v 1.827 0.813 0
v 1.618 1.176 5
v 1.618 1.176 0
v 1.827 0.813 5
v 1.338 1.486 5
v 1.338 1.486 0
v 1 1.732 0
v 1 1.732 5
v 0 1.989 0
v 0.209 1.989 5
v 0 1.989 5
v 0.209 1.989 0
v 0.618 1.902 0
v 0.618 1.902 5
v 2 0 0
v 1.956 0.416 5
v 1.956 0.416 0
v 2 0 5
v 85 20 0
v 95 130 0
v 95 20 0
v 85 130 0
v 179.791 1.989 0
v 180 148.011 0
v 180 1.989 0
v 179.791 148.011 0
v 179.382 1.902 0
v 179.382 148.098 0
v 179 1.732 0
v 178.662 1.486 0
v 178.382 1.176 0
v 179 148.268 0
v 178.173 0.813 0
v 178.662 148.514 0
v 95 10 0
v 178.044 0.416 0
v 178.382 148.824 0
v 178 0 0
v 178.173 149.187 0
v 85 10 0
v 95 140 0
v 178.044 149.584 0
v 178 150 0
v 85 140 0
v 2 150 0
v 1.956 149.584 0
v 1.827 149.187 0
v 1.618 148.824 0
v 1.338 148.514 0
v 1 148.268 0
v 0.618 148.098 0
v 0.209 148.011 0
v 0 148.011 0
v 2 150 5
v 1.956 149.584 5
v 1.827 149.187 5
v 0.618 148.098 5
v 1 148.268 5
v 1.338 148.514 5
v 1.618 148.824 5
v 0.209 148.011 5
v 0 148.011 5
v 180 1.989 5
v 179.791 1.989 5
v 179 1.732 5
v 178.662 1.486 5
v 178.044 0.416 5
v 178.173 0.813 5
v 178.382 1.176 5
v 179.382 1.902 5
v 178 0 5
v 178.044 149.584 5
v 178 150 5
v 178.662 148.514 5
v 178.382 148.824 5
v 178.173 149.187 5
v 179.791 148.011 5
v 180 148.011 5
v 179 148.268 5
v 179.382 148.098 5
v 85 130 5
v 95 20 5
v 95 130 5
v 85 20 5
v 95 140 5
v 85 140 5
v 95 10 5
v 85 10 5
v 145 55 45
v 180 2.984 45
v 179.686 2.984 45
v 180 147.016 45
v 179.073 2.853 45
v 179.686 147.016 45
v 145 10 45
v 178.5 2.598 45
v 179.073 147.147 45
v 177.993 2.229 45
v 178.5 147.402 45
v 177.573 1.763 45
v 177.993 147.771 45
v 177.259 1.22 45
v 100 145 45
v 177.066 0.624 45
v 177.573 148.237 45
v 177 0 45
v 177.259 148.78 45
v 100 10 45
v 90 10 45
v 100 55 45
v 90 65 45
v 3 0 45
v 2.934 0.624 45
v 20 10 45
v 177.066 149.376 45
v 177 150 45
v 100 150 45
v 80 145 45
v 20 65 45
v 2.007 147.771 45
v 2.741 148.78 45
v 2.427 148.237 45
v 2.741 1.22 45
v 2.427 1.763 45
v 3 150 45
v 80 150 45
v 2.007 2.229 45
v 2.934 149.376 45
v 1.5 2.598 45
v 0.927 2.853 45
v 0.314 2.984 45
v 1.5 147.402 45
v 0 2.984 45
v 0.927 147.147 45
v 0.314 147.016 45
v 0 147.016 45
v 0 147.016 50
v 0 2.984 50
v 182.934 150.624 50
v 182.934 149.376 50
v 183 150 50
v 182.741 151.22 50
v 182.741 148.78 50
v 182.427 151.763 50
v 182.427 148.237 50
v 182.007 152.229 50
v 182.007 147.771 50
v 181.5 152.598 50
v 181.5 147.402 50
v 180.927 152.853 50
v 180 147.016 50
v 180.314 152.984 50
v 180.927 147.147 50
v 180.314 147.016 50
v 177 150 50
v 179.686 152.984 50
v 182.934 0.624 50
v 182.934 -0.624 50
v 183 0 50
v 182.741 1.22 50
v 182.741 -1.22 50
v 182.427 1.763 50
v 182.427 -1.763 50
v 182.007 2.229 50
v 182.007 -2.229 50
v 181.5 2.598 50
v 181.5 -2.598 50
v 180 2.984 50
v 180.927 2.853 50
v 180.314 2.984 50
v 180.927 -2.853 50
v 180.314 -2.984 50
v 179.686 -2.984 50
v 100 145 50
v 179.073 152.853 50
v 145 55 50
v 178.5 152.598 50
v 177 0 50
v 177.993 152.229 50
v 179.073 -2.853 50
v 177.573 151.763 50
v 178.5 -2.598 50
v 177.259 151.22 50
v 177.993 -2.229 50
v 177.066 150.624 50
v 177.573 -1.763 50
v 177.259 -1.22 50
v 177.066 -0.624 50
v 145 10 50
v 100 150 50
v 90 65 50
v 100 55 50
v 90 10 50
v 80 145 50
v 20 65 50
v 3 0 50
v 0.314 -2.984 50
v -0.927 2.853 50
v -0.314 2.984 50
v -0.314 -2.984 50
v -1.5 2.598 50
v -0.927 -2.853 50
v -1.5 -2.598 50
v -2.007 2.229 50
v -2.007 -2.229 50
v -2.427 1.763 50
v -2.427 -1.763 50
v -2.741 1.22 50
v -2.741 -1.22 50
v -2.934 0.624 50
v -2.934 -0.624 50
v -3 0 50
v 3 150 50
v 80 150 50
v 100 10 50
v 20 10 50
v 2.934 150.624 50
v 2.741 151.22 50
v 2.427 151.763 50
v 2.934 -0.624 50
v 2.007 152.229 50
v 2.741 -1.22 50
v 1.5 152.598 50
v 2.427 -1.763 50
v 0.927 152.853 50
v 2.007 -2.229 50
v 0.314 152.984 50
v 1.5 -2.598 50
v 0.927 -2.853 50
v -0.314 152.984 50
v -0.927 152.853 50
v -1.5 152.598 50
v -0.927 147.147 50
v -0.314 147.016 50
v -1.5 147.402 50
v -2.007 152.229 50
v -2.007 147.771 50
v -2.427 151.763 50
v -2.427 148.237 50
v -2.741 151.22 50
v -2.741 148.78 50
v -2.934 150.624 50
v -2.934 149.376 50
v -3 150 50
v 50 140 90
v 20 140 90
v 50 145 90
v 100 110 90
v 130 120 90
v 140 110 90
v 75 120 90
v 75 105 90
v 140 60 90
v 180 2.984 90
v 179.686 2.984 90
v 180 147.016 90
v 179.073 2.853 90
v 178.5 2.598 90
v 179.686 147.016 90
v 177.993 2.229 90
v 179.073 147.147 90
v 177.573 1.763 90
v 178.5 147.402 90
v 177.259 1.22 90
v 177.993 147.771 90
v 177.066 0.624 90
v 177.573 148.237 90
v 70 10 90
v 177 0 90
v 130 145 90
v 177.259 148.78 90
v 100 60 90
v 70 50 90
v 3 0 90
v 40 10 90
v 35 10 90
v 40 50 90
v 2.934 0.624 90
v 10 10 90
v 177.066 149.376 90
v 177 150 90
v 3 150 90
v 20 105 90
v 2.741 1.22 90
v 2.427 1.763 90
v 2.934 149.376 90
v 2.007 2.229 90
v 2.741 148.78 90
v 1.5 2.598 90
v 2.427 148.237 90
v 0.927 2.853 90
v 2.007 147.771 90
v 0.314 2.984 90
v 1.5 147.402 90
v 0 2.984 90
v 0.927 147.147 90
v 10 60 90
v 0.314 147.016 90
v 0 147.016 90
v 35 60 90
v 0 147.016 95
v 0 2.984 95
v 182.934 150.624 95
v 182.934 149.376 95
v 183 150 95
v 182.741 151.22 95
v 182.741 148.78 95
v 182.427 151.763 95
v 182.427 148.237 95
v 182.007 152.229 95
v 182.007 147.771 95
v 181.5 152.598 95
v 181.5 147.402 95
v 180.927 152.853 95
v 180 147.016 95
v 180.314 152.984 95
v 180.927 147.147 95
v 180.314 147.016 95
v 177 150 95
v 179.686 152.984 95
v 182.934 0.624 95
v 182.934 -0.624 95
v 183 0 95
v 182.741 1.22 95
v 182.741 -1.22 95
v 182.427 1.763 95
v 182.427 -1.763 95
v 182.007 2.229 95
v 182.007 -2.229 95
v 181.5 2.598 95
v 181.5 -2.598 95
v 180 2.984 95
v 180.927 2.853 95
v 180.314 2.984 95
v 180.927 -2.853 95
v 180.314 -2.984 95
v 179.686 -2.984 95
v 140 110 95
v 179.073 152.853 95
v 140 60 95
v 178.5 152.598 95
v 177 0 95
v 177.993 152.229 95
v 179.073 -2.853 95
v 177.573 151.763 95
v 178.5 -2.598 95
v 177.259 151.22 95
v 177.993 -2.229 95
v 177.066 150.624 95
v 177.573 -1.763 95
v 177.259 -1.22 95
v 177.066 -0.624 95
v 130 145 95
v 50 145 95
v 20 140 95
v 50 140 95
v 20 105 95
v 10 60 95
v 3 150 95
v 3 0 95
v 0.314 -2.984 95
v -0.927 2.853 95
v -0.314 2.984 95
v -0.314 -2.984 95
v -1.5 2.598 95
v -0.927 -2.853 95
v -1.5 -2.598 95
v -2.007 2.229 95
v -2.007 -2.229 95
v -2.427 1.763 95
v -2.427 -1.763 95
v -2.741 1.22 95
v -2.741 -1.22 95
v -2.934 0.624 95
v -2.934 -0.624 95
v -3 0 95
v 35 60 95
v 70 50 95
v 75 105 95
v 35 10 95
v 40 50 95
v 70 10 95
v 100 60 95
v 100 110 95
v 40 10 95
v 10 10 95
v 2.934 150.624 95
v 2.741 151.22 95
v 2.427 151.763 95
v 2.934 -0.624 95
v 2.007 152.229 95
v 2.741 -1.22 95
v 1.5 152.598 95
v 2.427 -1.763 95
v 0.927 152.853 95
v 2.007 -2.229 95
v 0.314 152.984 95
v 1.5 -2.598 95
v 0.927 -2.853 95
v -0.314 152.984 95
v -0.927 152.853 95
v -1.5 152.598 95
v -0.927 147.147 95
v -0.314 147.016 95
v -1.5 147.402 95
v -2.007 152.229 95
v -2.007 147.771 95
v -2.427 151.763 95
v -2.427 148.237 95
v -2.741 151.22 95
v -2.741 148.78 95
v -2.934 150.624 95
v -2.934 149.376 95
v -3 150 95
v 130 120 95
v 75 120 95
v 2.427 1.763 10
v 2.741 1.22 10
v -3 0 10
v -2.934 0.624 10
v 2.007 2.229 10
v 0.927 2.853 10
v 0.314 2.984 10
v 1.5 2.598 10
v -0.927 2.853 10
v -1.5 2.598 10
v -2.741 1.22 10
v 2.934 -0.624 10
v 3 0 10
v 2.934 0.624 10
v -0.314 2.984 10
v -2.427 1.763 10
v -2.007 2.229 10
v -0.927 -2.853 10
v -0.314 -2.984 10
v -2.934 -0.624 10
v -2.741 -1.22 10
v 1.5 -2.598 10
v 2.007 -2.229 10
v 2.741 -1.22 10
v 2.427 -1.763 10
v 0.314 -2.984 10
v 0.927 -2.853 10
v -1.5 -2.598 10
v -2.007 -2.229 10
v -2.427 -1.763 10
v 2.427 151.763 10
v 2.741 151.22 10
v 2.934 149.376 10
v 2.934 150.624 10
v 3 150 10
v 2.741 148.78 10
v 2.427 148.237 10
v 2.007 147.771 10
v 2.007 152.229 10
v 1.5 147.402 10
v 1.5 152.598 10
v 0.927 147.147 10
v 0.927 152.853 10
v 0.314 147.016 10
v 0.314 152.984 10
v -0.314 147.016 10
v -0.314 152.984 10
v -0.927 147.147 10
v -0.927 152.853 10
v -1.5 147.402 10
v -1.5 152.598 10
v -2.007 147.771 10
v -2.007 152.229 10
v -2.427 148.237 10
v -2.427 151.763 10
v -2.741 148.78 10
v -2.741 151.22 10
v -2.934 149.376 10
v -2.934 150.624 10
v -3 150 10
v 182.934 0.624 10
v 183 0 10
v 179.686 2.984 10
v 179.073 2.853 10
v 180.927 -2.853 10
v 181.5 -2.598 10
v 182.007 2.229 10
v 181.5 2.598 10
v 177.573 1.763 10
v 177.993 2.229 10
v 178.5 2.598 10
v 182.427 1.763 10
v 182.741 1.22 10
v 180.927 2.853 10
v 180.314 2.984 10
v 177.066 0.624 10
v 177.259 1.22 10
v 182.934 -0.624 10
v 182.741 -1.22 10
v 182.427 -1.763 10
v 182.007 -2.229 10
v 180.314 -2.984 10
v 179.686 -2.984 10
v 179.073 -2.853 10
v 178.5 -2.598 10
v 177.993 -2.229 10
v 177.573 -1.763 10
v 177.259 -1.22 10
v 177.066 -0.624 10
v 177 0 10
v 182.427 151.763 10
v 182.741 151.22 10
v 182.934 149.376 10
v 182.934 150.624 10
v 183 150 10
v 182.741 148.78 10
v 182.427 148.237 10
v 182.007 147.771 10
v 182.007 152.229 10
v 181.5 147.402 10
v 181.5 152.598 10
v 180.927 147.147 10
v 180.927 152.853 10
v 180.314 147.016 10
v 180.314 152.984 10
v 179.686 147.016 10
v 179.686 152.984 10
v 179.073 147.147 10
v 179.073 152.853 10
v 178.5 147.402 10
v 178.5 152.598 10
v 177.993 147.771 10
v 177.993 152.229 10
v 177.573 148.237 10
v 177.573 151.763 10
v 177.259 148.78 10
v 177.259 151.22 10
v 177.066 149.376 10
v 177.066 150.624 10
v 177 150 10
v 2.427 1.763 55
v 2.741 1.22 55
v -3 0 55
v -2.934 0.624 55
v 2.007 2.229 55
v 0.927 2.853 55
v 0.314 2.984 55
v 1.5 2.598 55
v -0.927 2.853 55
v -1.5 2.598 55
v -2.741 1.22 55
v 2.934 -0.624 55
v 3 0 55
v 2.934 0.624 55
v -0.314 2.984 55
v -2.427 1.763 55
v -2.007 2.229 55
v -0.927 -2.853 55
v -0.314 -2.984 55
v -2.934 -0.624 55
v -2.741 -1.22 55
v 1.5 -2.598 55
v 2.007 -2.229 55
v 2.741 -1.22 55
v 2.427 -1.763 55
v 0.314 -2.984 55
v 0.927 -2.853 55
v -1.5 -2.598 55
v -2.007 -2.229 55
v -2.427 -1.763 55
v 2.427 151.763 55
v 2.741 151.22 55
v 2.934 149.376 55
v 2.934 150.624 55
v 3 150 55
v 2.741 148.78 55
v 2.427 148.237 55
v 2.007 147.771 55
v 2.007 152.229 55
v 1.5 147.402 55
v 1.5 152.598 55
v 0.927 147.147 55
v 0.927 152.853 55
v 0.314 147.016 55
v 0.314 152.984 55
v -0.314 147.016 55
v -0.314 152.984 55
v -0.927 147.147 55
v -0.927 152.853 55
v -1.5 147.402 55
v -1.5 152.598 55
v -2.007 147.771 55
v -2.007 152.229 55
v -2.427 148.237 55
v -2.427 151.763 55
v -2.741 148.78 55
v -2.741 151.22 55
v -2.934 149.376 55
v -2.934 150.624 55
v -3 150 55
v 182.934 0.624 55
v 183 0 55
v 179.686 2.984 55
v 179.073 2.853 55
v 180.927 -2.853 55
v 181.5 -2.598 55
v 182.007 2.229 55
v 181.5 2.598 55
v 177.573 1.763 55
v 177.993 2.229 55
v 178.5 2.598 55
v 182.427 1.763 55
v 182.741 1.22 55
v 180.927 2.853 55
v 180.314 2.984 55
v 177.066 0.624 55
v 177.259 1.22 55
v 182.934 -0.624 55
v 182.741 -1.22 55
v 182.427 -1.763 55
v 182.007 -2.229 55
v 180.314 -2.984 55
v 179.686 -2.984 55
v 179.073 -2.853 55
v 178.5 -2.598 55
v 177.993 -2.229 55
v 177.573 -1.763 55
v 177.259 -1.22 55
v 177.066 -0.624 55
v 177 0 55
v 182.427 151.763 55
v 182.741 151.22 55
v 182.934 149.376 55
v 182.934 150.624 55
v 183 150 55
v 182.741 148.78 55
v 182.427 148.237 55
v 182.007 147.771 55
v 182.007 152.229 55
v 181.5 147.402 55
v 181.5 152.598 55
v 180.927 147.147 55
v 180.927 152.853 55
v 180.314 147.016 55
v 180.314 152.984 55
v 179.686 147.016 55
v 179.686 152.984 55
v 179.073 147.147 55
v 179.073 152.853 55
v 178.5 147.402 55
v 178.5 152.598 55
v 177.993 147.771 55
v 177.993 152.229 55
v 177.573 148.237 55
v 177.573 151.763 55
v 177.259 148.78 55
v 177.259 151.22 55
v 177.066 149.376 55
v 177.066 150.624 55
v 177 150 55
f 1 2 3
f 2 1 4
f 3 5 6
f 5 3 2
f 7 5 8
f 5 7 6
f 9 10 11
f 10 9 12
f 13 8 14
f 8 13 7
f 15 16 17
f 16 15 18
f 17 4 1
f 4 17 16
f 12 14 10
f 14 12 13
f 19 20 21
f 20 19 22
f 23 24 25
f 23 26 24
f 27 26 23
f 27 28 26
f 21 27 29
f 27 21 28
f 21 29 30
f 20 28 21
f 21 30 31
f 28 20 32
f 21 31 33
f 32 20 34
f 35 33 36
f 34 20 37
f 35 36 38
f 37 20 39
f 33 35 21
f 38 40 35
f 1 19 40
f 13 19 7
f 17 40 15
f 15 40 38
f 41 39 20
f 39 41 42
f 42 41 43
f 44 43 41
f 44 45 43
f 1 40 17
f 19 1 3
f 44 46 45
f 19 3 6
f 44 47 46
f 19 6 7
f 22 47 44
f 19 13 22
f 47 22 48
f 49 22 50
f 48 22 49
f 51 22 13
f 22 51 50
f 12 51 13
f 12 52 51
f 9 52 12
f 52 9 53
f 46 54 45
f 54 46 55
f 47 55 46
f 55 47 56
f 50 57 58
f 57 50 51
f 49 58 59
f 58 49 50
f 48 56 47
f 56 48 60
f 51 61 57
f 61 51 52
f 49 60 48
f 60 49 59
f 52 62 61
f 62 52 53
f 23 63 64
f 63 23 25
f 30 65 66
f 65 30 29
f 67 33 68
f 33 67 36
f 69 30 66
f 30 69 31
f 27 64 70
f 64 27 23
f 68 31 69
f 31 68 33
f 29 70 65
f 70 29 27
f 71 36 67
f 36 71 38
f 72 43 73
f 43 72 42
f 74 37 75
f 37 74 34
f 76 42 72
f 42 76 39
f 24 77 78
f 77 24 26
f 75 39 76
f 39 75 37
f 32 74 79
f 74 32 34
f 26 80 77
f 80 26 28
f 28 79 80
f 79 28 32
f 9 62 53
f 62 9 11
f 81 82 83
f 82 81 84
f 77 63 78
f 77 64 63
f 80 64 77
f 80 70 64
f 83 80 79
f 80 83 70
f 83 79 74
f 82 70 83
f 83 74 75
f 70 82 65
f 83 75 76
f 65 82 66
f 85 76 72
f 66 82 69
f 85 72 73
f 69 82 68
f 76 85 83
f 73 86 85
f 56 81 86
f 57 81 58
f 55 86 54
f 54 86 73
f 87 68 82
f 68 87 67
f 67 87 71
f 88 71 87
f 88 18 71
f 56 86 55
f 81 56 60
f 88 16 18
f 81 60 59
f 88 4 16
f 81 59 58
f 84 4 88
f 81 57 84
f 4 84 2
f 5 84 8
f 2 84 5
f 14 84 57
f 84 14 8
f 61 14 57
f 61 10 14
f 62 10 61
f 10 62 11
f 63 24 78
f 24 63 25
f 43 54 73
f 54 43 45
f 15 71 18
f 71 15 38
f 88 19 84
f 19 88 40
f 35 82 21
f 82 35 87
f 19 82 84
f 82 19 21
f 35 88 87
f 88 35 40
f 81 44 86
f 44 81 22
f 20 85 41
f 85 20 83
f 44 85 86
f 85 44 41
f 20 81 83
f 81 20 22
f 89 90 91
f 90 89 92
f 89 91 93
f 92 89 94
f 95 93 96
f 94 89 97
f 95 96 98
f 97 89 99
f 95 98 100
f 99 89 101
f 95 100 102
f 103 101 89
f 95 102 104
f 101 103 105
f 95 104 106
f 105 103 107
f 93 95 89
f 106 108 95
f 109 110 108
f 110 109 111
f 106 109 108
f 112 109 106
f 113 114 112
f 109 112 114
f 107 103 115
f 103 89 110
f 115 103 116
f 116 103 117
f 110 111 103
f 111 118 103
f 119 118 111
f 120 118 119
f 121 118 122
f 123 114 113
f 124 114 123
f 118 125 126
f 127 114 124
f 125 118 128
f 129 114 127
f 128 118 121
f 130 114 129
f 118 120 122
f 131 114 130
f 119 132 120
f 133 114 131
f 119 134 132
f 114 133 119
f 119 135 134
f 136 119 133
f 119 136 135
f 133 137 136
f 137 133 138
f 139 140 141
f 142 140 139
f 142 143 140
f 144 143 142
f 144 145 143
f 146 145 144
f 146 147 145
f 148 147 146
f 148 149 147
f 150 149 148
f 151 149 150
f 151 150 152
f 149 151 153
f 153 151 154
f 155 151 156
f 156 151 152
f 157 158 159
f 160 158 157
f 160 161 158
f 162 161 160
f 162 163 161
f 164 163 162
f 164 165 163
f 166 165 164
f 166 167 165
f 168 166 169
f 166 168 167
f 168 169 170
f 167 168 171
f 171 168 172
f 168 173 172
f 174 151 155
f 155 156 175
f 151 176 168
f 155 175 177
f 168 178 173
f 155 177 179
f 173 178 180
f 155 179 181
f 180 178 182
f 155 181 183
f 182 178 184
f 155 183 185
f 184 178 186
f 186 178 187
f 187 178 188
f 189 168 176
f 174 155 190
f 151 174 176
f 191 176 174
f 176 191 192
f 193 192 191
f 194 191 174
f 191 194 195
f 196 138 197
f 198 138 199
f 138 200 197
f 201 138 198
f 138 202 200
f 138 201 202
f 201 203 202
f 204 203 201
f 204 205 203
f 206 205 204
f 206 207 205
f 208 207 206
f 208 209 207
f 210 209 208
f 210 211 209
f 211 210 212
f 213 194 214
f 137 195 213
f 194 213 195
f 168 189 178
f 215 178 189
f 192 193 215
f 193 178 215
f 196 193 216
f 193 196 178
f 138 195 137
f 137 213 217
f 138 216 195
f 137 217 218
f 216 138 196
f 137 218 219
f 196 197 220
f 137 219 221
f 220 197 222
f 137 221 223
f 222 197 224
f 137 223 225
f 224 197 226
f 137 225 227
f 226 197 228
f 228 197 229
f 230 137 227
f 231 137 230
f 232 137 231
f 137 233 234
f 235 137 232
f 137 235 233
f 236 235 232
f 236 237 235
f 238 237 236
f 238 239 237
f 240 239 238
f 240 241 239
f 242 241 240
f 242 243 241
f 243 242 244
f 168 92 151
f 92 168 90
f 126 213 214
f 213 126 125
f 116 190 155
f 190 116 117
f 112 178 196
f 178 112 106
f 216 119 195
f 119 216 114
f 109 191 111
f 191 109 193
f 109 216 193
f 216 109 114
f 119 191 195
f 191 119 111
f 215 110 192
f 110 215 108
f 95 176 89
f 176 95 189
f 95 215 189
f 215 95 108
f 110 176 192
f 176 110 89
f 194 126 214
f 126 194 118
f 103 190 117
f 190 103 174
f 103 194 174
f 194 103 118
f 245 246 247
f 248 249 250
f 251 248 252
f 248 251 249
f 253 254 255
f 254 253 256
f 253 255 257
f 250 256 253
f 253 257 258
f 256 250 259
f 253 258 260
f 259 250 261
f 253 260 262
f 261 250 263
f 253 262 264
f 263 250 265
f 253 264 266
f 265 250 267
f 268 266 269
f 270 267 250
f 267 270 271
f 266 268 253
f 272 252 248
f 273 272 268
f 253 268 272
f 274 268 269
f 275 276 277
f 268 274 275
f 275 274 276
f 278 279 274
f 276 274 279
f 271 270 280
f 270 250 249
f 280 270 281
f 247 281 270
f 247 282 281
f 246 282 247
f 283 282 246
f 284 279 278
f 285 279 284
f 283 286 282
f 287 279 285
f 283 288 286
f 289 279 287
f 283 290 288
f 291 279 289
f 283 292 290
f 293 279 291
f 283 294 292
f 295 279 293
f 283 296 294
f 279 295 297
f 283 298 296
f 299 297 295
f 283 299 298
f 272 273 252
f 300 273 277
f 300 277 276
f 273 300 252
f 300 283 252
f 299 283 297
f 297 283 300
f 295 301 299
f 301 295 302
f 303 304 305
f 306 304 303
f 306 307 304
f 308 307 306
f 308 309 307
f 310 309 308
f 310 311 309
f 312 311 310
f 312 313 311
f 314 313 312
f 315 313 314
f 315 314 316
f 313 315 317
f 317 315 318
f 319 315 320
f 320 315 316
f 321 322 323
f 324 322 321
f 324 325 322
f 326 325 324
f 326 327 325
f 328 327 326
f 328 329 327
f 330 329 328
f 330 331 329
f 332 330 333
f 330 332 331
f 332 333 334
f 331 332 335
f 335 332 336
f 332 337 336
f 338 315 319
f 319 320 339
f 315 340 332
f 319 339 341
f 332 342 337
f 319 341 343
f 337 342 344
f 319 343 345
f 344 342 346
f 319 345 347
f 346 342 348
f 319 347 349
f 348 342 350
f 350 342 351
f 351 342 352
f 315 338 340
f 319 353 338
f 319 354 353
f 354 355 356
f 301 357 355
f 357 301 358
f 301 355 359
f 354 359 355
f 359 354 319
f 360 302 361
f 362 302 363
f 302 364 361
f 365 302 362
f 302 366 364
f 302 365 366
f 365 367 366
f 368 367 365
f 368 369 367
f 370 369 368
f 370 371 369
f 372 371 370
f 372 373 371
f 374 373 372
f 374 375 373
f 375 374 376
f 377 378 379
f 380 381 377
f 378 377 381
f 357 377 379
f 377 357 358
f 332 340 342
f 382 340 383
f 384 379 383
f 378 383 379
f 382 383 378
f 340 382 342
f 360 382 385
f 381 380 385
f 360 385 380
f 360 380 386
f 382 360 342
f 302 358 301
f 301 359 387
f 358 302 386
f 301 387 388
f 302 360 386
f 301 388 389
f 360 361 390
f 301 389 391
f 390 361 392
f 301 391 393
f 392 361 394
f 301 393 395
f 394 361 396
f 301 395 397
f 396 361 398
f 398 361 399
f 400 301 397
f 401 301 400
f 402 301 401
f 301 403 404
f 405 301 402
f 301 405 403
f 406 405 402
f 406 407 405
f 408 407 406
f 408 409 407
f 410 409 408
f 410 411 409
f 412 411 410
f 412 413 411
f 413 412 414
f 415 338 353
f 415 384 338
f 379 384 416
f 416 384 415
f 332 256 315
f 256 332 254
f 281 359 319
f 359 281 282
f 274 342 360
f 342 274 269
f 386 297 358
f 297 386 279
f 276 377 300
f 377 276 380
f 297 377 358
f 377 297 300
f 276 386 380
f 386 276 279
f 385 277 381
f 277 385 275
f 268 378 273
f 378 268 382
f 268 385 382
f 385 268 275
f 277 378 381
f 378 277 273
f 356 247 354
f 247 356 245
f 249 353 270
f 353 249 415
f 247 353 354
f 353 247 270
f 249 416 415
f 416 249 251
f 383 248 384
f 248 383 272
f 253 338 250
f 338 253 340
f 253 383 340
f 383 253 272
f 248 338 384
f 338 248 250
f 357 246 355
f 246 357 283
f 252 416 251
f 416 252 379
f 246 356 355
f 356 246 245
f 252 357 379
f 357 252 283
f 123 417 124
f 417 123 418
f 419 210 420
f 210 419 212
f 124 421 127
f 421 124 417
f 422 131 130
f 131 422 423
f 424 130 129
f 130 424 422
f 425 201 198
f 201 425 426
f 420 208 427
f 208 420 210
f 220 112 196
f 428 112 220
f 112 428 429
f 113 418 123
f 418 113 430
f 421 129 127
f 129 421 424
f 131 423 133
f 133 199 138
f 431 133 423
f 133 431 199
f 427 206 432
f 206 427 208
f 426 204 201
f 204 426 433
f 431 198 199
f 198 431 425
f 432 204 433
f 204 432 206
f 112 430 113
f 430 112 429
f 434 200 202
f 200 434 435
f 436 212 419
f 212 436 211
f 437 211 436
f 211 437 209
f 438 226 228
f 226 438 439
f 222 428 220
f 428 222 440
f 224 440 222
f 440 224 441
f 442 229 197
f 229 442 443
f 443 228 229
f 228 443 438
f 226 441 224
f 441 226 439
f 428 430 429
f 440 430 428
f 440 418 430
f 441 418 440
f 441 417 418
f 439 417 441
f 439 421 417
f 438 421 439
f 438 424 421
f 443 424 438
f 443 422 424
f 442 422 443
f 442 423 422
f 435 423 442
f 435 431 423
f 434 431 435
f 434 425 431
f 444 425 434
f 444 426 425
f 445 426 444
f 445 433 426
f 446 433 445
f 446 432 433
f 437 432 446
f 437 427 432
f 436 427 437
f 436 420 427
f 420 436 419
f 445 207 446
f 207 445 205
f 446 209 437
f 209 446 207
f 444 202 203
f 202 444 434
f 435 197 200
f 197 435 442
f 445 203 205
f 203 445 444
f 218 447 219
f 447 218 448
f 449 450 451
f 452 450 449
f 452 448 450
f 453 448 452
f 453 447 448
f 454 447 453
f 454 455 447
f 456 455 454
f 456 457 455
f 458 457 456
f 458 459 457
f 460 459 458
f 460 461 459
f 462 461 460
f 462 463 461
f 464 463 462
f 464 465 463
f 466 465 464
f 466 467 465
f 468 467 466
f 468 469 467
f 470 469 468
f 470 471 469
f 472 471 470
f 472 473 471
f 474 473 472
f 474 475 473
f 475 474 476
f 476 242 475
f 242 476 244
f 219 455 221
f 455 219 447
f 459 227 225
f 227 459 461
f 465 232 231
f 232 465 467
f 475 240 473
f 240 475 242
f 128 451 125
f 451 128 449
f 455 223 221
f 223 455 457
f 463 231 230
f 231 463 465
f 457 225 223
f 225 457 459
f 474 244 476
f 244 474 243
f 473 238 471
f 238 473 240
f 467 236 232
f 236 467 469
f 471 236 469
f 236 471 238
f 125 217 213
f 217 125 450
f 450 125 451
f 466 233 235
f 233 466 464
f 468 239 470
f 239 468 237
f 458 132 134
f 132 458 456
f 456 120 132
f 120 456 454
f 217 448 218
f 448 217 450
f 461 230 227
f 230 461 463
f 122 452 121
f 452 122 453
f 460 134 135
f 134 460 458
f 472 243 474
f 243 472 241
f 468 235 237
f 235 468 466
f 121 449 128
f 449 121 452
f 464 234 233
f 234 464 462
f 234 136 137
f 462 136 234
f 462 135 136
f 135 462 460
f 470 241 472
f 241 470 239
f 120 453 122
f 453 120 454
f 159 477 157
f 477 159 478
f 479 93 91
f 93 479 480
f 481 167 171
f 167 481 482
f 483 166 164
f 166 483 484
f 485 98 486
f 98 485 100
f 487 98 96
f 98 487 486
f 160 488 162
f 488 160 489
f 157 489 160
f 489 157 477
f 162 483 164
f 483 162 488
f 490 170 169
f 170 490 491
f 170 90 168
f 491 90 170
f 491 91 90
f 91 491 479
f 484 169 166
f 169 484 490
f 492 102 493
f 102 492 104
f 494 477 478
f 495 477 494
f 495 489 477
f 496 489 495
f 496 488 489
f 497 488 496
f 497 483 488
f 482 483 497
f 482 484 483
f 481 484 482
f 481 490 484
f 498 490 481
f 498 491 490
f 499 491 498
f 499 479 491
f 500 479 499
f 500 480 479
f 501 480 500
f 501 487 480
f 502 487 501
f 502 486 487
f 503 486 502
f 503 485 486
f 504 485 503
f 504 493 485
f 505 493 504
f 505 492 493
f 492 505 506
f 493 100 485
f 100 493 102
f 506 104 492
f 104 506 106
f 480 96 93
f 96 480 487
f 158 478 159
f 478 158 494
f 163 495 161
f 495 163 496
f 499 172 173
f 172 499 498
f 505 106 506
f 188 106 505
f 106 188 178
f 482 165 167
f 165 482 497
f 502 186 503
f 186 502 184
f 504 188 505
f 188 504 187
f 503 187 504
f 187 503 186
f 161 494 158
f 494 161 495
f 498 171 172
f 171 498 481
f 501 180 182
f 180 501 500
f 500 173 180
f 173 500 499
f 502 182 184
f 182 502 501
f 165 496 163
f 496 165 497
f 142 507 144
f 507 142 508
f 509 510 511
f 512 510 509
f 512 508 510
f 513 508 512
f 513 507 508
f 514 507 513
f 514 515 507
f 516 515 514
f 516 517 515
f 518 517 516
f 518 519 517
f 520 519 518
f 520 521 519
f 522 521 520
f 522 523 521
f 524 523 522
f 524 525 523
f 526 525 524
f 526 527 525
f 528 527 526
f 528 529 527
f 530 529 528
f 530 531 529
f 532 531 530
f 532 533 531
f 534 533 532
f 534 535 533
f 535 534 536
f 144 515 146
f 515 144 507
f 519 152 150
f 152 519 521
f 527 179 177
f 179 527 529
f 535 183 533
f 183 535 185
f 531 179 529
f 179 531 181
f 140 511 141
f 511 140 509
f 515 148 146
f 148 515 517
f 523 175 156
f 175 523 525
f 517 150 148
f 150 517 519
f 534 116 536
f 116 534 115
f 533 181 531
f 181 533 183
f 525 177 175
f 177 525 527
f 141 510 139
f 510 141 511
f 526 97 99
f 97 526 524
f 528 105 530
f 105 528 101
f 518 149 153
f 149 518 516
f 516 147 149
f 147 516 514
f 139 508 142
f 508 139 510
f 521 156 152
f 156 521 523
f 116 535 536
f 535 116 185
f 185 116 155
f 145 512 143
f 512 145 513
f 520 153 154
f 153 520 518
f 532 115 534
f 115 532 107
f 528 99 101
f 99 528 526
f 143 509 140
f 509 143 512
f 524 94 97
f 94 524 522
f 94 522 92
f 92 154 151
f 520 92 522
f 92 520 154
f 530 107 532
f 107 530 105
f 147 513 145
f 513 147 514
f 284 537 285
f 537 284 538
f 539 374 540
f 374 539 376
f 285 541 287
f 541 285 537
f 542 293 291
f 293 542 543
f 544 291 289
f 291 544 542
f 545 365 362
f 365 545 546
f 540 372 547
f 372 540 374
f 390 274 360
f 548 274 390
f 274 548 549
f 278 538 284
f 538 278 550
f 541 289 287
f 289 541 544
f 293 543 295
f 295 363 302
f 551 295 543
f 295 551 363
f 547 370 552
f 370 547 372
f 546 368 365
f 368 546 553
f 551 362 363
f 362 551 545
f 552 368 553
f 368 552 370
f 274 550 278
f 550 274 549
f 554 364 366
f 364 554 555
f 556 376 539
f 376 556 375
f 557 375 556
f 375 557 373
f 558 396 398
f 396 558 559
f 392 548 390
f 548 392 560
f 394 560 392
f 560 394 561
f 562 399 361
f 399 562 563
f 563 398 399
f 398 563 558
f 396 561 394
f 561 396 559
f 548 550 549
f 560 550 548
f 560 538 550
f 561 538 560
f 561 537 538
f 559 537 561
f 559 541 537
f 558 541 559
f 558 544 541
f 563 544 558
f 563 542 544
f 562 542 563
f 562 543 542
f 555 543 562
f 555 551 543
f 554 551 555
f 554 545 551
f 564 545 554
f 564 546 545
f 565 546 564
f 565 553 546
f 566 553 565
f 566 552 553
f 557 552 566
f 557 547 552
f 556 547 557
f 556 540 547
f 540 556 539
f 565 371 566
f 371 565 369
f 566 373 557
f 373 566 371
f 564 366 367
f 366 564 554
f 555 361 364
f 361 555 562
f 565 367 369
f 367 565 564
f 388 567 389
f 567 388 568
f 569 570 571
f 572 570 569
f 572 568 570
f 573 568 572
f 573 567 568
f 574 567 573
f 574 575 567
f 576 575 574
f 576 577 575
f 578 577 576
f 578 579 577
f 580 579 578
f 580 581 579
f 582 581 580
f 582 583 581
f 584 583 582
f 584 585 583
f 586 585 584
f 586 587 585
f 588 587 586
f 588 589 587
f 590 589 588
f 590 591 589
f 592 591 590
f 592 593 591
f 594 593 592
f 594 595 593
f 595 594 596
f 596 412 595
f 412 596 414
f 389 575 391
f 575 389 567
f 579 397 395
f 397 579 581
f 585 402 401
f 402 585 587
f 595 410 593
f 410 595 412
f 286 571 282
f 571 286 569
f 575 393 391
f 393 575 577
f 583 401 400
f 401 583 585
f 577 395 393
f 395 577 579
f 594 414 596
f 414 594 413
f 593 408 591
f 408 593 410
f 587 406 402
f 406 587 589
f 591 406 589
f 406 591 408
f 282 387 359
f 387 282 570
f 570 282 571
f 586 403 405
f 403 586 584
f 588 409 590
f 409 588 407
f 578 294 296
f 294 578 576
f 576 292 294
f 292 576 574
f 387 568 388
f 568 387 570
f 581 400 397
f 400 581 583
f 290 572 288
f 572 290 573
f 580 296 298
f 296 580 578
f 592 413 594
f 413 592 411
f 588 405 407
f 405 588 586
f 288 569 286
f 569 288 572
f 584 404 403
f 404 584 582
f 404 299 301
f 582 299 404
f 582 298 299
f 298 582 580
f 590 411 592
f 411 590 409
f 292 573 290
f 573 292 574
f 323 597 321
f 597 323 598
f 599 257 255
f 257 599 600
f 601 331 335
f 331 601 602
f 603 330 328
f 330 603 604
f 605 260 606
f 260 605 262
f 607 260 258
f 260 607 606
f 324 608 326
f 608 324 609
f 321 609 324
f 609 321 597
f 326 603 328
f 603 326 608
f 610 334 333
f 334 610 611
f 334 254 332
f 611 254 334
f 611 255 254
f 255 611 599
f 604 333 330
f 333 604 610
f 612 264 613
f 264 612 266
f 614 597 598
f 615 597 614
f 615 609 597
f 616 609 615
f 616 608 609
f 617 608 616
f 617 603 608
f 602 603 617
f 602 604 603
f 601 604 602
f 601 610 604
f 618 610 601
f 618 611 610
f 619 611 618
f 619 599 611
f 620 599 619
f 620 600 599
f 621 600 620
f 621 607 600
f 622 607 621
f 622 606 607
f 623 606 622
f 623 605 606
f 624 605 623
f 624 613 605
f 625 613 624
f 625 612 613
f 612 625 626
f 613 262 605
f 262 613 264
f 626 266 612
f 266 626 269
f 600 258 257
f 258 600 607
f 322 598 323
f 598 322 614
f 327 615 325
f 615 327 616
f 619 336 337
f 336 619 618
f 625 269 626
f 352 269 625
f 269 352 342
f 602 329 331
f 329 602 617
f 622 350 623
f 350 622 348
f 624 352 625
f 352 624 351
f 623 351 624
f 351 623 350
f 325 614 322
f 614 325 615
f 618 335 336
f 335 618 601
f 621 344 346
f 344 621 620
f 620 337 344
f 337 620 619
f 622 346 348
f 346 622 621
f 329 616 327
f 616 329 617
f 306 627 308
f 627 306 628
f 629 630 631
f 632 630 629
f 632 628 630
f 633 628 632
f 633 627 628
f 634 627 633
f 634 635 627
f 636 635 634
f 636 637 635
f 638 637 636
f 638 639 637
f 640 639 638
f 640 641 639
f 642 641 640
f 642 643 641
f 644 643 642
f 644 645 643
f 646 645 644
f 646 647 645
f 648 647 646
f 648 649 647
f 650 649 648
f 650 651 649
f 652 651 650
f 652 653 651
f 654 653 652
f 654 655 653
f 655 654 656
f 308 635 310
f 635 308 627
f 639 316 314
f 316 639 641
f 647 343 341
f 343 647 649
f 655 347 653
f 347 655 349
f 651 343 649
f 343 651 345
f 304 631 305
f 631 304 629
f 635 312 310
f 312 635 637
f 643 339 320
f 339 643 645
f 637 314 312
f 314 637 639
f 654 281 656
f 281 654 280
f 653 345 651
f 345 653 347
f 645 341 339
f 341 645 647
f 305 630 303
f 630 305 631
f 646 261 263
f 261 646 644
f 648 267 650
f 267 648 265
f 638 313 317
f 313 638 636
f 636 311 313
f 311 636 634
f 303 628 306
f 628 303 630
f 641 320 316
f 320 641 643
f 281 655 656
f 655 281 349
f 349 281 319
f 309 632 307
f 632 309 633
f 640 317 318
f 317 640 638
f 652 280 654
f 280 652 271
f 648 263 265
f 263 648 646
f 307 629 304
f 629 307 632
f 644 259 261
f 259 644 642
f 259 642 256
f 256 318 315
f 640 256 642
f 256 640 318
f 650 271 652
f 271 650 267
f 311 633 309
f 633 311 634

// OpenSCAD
// Agri-Bot Modular Chassis in OpenSCAD
// Compact length, expandable vertically, screw-stacked layers

//////////////////// PARAMETERS ////////////////////
length = 180;     // Compact length of the chassis
width = 150;      // Width of each layer
layerHeight = 5;  // Thickness of each layer
spacerHeight = 40; // Height between layers
screwHoleRadius = 2;
numSpacers = 4;   // Four corners

module screwHoleGrid() {
  for (x = [0, length])
    for (y = [0, width])
      translate([x, y, 0])
        cylinder(h = layerHeight + 1, r = screwHoleRadius, $fn = 30);
}

module baseLayer() {
  difference() {
    cube([length, width, layerHeight]);
    screwHoleGrid();
    // Motor wire holes
    translate([length/2 - 5, 10, 0]) cube([10, 10, layerHeight + 1]);
    translate([length/2 - 5, width - 20, 0]) cube([10, 10, layerHeight + 1]);
  }
}

module controlLayer() {
  difference() {
    cube([length, width, layerHeight]);
    screwHoleGrid();
    // Arduino UNO slot (68.6 x 53.4mm)
    translate([20, 10, 0]) cube([70, 55, layerHeight + 1]);
    // L298N slot (43 x 43mm)
    translate([100, 10, 0]) cube([45, 45, layerHeight + 1]);
    // Ultrasonic cutout (20x40mm)
    translate([length/2 - 10, width - 5, 0]) cube([20, 5, layerHeight + 1]);
  }
}

module sensorLayer() {
  difference() {
    cube([length, width, layerHeight]);
    screwHoleGrid();
    // ESP32 slot (25x50mm)
    translate([10, 10, 0]) cube([25, 50, layerHeight + 1]);
    // ESP32-CAM + servo base
    translate([40, 10, 0]) cube([30, 40, layerHeight + 1]);
    // LCD (16x2) cutout (80x25mm)
    translate([length/2 - 40, width - 30, 0]) cube([80, 25, layerHeight + 1]);
    // Relay or battery slot
    translate([100, 60, 0]) cube([40, 50, layerHeight + 1]);
    // Breadboard area
    translate([20, width - 45, 0]) cube([55, 35, layerHeight + 1]);
  }
}

module standoffs() {
  for (x = [0, length])
    for (y = [0, width])
      translate([x, y, layerHeight])
        cylinder(h = spacerHeight, r = 3, $fn = 30);
}

//////////////////// FINAL ASSEMBLY ////////////////////
translate([0, 0, 0])
  baseLayer();

translate([0, 0, spacerHeight + layerHeight])
  controlLayer();

translate([0, 0, (spacerHeight + layerHeight) * 2])
  sensorLayer();

// Standoffs (between layers)
translate([0, 0, layerHeight])
  standoffs();
translate([0, 0, layerHeight + spacerHeight + layerHeight])
  standoffs();
